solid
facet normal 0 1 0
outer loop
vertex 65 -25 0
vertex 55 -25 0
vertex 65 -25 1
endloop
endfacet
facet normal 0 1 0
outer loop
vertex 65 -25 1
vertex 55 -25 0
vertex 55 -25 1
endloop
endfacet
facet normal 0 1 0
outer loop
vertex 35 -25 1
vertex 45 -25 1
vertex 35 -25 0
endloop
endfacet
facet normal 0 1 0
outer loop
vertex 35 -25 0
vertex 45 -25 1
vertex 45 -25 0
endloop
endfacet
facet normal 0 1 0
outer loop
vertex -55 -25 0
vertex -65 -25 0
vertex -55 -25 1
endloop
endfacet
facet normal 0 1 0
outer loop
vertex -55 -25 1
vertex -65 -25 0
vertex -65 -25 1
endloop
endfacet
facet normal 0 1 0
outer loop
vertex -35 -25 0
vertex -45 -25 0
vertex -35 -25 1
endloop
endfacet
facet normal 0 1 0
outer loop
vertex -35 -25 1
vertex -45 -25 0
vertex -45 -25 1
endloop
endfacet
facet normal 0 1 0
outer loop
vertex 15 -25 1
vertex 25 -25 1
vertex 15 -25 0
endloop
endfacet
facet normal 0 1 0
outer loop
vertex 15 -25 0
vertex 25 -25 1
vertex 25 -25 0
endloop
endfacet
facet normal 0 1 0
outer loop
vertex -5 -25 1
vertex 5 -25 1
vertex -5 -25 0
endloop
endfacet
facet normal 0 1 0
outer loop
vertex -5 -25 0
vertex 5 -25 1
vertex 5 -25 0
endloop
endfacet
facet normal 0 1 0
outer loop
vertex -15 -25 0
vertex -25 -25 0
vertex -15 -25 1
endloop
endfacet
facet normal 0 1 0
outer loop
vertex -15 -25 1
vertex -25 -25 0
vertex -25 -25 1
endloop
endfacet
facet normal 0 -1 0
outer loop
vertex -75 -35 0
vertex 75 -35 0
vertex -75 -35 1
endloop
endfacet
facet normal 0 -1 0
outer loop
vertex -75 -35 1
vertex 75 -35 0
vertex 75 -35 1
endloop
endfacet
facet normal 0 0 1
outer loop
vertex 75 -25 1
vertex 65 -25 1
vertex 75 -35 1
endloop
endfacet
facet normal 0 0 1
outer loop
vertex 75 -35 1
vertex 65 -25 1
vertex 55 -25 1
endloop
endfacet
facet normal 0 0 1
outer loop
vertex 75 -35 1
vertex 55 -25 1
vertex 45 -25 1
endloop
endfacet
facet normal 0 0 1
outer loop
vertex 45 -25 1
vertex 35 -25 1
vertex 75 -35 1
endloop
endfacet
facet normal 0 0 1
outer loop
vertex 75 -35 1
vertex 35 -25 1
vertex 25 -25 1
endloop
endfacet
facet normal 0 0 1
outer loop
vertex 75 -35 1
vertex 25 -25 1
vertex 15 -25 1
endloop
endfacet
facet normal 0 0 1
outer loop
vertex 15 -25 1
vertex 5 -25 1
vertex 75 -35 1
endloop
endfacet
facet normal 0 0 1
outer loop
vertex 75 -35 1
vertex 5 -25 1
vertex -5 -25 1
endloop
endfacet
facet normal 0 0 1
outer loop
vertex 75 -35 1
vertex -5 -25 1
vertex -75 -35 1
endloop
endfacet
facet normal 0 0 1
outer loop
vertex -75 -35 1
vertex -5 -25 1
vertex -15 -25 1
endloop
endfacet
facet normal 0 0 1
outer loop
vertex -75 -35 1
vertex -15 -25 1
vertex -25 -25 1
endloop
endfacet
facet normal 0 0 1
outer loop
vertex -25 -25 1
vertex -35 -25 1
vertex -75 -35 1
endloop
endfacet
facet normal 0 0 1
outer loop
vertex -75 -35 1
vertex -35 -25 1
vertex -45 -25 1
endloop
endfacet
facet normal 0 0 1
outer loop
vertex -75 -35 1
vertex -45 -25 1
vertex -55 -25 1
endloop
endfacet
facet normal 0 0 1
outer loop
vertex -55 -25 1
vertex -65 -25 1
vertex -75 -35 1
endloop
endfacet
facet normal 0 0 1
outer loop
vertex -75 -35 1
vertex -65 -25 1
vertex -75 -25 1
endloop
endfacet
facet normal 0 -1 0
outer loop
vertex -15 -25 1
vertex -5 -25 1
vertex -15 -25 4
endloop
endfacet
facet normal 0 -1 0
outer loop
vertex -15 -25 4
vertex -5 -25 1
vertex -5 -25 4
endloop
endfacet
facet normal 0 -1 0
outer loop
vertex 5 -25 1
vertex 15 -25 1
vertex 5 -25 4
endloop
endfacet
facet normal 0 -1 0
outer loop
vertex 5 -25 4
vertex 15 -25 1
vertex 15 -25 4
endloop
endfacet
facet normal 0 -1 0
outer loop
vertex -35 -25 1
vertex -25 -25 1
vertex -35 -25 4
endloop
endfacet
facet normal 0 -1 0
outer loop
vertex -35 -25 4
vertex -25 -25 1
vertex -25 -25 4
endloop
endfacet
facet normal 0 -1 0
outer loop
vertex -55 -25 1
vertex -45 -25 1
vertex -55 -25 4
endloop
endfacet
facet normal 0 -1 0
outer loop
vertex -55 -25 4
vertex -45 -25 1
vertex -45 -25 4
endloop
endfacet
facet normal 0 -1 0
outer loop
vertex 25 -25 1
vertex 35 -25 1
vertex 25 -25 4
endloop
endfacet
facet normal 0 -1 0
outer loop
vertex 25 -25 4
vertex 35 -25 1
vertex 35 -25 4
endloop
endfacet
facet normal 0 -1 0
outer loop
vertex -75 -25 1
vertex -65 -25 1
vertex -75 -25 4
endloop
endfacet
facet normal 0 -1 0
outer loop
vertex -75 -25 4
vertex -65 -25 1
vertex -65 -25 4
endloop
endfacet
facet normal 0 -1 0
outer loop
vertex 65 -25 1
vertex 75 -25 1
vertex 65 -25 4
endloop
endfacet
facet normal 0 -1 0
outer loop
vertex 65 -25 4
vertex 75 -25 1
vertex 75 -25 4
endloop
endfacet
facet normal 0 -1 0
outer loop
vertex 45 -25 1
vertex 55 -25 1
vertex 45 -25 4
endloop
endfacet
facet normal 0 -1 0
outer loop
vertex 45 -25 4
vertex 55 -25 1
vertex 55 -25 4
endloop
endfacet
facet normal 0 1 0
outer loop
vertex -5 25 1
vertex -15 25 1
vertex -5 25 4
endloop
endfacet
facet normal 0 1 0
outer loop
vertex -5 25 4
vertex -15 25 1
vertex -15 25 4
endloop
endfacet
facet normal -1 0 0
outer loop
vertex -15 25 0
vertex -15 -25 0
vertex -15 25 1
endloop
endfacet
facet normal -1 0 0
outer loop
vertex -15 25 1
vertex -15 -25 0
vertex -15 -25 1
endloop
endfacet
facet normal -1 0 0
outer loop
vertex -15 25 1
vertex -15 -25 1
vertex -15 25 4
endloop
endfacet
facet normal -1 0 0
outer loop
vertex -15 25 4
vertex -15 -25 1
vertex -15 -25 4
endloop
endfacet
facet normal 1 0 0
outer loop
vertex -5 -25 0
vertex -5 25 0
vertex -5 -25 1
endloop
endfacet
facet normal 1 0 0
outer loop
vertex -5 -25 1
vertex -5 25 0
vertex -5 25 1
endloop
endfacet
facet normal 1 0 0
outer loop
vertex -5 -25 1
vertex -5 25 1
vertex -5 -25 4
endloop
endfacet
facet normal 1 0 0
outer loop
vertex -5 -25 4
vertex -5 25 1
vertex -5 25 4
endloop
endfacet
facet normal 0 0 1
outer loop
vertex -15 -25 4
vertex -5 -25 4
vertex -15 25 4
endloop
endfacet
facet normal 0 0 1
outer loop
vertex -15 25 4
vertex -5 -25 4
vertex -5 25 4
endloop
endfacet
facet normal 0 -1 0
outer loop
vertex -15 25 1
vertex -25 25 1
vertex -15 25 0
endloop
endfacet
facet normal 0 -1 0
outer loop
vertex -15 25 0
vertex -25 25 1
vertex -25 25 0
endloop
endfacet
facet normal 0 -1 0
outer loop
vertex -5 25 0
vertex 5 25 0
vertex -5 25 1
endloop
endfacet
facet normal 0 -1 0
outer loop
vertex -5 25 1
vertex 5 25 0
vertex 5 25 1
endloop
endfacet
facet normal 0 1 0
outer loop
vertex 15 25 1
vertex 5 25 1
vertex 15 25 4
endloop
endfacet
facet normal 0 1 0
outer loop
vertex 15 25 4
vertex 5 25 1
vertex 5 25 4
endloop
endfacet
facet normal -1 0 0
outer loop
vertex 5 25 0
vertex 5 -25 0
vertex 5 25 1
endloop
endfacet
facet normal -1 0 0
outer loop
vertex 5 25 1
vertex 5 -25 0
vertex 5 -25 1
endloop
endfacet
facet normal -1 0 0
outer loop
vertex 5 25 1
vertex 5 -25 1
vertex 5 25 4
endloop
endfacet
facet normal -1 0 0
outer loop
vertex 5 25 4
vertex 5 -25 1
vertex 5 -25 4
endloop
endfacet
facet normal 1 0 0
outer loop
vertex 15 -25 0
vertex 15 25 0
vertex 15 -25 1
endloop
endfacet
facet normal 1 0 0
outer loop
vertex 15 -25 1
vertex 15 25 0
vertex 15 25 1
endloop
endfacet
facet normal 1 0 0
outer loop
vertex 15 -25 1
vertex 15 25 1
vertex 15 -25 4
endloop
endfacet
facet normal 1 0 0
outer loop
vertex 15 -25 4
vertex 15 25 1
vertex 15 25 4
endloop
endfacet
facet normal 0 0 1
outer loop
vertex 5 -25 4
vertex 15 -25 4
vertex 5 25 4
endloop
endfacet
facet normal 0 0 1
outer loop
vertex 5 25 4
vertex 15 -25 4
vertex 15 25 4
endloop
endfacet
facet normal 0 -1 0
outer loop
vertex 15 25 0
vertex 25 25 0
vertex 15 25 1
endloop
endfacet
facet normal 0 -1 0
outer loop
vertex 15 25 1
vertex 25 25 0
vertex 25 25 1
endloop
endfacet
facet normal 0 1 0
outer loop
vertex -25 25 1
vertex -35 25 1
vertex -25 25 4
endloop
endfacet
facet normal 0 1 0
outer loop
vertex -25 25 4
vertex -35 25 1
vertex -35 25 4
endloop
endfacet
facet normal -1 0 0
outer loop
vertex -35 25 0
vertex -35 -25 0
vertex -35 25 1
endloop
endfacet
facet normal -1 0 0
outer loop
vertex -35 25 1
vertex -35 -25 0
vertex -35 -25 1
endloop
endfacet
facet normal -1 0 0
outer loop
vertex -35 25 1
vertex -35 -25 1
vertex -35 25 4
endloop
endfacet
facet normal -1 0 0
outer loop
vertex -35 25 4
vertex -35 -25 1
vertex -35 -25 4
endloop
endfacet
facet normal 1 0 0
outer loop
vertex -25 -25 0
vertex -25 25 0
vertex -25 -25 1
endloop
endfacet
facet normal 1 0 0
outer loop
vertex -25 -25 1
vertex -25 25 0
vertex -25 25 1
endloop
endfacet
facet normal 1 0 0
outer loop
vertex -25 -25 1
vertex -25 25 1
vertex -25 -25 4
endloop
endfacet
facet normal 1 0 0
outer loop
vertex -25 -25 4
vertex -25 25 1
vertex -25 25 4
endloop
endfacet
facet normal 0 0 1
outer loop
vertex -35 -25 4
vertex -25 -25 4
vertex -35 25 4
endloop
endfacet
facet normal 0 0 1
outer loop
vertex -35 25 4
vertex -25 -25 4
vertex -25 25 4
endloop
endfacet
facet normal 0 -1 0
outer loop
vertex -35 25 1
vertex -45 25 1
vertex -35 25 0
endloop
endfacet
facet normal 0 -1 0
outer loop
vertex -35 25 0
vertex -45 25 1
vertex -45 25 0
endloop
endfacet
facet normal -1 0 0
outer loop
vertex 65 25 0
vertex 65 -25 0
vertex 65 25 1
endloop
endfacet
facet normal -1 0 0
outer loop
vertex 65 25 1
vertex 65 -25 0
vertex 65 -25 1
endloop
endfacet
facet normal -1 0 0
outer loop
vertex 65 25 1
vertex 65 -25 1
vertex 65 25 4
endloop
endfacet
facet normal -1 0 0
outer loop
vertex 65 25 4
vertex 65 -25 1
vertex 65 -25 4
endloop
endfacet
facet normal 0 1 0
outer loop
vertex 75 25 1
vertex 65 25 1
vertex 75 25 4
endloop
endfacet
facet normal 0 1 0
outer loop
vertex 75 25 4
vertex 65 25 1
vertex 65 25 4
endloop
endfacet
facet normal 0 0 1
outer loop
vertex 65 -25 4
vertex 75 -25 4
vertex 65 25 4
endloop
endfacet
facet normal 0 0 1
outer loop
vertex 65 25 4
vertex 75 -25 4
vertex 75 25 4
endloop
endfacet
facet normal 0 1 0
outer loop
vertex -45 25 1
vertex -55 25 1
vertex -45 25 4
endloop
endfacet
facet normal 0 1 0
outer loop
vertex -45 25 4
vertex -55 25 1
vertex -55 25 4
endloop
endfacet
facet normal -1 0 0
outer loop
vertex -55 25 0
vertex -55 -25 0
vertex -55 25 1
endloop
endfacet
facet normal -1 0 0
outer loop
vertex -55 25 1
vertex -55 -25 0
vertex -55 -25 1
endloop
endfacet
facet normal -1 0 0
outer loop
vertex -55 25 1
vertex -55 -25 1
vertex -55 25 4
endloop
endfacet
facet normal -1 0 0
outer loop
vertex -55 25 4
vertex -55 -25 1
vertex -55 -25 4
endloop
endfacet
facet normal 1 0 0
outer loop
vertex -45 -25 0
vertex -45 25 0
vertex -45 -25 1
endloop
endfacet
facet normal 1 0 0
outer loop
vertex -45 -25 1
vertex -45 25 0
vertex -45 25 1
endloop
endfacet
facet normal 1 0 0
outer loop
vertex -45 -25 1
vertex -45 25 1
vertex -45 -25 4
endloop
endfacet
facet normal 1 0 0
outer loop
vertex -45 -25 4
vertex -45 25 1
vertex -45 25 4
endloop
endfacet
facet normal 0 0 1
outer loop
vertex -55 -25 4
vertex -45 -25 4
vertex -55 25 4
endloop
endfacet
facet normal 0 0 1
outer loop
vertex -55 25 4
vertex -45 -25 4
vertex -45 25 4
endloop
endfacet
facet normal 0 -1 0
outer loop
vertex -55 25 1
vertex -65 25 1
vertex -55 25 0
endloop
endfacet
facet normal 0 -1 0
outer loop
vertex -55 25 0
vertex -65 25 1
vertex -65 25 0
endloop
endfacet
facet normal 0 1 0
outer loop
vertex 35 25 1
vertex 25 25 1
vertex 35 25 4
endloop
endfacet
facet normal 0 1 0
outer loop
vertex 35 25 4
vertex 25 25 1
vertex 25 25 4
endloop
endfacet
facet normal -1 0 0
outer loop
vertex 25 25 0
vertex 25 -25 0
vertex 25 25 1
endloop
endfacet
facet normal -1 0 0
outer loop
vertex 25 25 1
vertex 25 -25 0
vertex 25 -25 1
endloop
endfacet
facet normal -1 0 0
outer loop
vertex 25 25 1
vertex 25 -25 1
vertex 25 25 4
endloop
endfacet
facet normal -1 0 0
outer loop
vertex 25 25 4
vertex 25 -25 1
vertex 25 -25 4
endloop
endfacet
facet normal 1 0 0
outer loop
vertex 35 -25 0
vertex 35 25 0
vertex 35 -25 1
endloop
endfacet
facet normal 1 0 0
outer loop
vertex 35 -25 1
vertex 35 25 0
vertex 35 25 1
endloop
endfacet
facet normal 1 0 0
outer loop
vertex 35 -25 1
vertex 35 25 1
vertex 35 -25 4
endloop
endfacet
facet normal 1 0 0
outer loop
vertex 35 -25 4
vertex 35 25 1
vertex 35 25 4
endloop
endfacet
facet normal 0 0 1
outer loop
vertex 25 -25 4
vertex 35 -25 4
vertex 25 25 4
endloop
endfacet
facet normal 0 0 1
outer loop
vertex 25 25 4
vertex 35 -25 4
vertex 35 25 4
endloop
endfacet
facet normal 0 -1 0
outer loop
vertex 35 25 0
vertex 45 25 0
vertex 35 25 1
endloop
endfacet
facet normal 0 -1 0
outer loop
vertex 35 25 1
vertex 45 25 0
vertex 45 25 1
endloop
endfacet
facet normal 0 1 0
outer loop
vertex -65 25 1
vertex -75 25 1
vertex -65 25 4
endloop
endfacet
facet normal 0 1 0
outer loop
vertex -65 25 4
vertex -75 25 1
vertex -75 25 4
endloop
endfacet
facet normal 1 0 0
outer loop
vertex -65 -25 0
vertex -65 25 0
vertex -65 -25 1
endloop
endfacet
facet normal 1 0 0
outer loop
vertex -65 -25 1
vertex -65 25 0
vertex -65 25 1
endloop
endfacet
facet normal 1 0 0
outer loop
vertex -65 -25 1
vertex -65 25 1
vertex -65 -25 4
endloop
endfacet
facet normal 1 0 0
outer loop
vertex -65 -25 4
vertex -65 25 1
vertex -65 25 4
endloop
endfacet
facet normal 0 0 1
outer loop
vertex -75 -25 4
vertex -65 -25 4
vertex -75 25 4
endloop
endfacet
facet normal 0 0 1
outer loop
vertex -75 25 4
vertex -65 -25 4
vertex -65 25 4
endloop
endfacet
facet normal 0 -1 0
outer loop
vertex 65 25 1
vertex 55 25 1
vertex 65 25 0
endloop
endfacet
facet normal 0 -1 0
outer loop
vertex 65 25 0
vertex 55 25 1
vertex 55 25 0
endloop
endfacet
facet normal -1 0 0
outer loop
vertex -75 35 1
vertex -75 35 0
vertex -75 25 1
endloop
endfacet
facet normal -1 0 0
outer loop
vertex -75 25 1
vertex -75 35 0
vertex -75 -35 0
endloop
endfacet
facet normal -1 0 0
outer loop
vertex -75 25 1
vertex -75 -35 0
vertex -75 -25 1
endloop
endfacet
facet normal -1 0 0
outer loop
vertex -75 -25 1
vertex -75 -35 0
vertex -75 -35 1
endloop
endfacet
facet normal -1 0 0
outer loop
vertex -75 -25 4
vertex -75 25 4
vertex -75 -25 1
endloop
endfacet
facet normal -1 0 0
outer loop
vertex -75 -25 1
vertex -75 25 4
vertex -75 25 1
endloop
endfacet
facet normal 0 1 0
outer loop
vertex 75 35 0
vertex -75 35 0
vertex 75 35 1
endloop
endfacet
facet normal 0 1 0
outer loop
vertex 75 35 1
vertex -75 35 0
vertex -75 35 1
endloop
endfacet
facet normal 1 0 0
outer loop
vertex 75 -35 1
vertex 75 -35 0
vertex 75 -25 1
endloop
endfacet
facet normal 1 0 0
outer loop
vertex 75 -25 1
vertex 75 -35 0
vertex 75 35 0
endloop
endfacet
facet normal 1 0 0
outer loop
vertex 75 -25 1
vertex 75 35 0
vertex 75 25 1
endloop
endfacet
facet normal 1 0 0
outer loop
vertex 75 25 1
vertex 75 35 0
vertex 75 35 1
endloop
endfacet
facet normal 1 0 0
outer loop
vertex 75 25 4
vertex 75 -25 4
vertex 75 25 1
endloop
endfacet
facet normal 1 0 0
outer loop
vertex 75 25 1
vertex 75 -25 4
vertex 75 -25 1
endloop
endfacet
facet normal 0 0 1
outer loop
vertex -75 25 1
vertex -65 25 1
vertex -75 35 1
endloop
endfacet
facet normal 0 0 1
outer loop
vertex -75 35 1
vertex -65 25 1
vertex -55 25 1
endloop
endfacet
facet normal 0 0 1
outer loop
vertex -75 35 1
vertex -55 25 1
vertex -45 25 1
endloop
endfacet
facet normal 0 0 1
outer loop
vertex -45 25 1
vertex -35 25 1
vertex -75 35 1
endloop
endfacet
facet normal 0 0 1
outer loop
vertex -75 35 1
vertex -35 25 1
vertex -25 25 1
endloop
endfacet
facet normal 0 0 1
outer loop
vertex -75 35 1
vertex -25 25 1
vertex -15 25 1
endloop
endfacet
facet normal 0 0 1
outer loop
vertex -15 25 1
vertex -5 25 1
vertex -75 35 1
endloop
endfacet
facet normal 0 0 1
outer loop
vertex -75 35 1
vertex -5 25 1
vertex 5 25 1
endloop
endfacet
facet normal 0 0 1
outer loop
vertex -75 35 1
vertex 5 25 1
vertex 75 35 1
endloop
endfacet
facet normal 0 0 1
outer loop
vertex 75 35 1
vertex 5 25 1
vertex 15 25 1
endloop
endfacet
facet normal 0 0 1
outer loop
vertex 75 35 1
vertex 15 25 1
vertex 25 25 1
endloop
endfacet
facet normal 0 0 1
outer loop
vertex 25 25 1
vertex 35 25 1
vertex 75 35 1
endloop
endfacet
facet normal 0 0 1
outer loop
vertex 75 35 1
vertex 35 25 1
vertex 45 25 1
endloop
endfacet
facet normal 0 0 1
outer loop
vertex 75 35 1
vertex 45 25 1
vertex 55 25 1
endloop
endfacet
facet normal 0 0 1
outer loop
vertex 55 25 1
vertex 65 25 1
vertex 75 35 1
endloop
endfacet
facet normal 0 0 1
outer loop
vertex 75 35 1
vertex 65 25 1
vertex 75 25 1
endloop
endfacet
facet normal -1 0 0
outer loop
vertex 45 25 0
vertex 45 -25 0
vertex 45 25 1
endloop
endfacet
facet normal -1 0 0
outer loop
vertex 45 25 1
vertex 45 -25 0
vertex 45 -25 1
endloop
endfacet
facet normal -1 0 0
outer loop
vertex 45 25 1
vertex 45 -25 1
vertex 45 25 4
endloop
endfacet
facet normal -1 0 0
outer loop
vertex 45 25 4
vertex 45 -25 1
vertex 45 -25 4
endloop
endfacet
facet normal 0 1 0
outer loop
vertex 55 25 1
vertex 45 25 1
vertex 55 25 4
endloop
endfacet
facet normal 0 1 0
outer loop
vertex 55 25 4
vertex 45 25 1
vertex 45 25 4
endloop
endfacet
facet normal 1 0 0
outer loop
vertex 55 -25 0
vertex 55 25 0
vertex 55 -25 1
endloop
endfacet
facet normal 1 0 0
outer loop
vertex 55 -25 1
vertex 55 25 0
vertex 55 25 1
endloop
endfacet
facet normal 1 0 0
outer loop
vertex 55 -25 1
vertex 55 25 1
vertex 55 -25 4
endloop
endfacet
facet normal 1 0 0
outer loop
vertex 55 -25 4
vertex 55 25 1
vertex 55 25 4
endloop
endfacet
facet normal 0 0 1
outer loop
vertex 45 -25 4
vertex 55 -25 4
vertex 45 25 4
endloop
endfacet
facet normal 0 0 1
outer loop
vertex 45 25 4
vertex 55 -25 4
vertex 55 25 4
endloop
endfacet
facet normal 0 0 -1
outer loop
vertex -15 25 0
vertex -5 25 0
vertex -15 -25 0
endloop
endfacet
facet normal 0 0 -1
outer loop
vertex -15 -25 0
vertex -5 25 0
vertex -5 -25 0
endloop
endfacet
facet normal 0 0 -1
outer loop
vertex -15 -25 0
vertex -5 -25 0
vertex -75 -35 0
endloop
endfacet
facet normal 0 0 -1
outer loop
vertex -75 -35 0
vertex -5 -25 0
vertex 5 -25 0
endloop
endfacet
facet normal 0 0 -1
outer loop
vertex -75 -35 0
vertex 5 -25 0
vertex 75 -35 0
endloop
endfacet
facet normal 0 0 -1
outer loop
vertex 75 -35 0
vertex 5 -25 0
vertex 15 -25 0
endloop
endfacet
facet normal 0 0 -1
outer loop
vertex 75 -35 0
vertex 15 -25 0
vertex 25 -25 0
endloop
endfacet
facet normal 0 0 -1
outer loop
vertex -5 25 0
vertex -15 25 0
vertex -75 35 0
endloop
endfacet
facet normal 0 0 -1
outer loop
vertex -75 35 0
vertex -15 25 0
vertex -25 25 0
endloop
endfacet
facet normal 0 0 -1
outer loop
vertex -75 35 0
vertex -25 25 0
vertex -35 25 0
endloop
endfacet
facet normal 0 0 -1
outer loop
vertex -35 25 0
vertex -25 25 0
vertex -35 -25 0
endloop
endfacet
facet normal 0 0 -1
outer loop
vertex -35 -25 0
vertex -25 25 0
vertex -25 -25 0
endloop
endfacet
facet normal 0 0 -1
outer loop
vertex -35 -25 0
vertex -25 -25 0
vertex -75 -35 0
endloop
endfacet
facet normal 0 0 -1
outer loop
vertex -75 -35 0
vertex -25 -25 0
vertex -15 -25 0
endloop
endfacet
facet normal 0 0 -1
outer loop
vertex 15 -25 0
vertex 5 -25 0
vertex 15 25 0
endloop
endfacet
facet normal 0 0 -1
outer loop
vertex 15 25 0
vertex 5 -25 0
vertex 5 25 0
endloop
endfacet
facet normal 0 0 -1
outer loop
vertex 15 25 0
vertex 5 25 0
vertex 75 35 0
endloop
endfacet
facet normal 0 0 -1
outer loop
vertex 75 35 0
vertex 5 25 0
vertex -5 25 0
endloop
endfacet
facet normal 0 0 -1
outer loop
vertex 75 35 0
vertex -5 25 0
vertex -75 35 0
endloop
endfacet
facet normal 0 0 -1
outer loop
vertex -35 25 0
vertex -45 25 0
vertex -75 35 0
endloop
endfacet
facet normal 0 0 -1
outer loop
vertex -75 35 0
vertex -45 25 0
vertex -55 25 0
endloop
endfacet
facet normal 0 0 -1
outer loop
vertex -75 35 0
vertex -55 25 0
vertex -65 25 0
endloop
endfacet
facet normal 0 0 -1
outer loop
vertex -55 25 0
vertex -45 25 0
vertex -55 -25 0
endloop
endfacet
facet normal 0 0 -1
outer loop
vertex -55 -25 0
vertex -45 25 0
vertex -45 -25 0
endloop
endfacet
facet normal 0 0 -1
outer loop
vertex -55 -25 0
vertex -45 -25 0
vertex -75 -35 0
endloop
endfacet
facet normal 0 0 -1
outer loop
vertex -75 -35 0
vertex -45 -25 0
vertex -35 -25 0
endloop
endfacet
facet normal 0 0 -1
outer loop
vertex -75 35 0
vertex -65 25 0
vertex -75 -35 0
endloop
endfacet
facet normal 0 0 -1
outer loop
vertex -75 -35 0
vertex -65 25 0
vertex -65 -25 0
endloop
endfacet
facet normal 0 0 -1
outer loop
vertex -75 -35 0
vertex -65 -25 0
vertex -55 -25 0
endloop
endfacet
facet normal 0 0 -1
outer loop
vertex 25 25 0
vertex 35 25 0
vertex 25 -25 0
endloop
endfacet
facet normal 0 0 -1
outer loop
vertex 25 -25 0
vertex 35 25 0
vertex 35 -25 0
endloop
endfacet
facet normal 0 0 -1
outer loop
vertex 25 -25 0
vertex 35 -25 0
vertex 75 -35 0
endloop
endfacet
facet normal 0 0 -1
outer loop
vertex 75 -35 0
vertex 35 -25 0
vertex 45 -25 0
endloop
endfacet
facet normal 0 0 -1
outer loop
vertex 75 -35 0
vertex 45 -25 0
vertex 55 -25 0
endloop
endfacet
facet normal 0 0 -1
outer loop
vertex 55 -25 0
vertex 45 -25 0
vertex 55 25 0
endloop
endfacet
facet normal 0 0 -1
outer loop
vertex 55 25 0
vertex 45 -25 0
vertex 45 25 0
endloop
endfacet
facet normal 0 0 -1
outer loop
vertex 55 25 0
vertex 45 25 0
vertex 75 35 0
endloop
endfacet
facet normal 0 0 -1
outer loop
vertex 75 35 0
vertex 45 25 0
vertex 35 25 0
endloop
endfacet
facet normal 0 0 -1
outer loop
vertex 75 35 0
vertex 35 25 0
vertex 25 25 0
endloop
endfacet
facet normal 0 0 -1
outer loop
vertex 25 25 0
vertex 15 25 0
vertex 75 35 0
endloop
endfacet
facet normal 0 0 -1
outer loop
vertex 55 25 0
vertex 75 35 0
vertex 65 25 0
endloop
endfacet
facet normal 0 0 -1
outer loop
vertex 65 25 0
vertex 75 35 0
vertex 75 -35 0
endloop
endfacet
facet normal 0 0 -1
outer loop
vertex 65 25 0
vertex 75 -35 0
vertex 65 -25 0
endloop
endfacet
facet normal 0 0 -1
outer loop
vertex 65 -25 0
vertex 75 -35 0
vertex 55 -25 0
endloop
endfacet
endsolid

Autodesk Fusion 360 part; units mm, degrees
sketch "Sketch1" plane through (0, 0, 0) normal (0, 0, 1) x (1, 0, 0)
  line L0 (75, -35) -> (-75, -35)
  line L1 (-75, -35) -> (-75, 35)
  line L2 (-75, 35) -> (75, 35)
  line L3 (75, 35) -> (75, -35)
  line L4 (75, -35) -> (-75, 35) construction
  line L5 (-75, -35) -> (75, 35) construction
  line L6 (75, -25) -> (-75, -25)
  line L7 (-75, -25) -> (-75, 25)
  line L8 (-75, 25) -> (75, 25)
  line L9 (75, 25) -> (75, -25)
  line L10 (75, -25) -> (-75, 25) construction
  line L11 (-75, -25) -> (75, 25) construction
  line L12 (-75, 25) -> (-65, 25)
  line L13 (-65, 25) -> (-65, -25)
  line L14 (-65, -25) -> (-75, -25)
  line L15 (-75, -25) -> (-75, 25)
  line L16 (-55, 25) -> (-45, 25)
  line L17 (-45, 25) -> (-45, -25)
  line L18 (-45, -25) -> (-55, -25)
  line L19 (-55, -25) -> (-55, 25)
  line L20 (-35, 25) -> (-25, 25)
  line L21 (-25, 25) -> (-25, -25)
  line L22 (-25, -25) -> (-35, -25)
  line L23 (-35, -25) -> (-35, 25)
  line L24 (-15, 25) -> (-5, 25)
  line L25 (-5, 25) -> (-5, -25)
  line L26 (-5, -25) -> (-15, -25)
  line L27 (-15, -25) -> (-15, 25)
  line L28 (5, 25) -> (15, 25)
  line L29 (15, 25) -> (15, -25)
  line L30 (15, -25) -> (5, -25)
  line L31 (5, -25) -> (5, 25)
  line L32 (25, 25) -> (35, 25)
  line L33 (35, 25) -> (35, -25)
  line L34 (35, -25) -> (25, -25)
  line L35 (25, -25) -> (25, 25)
  line L36 (45, 25) -> (55, 25)
  line L37 (55, 25) -> (55, -25)
  line L38 (55, -25) -> (45, -25)
  line L39 (45, -25) -> (45, 25)
  line L40 (65, 25) -> (75, 25)
  line L41 (75, 25) -> (75, -25)
  line L42 (75, -25) -> (65, -25)
  line L43 (65, -25) -> (65, 25)
  dimension "d1" = 150
  dimension "d2" = 70
  dimension "d3" = 150
  dimension "d4" = 50
  dimension "d5" = 10
  dimension "d8" = 140
  dimension "d9" = 0
extrude "Extrude1" add sketch "Sketch1" along normal blind 4 contours L3 L6 L8 L9 L40 L41 L42 L43 | L1 L6 L7 L8 L12 L13 L14 L15 | L6 L8 L36 L37 L38 L39 | L6 L8 L16 L17 L18 L19 | L6 L8 L32 L33 L34 L35 | L6 L8 L20 L21 L22 L23 | L6 L8 L28 L29 L30 L31 | L6 L8 L24 L25 L26 L27 makes body 1 at (-31.6667, 8.3333, 0) makes body 2 at (-71.6667, 8.3333, 0) makes body 3 at (31.6667, -8.3333, 0) makes body 4 at (-51.6667, 8.3333, 0) makes body 5 at (68.3333, -8.3333, 0) makes body 6 at (11.6667, -8.3333, 0) makes body 7 at (51.6667, -8.3333, 0) makes body 8 at (-11.6667, 8.3333, 0)
extrude "Extrude2" add sketch "Sketch1" along normal blind 1 contours L0 L1 L3 L6 L14 L18 L22 L26 L30 L34 L38 L42 | L1 L2 L3 L8 L12 L16 L20 L24 L28 L32 L36 L40 bodies 1 2 3 4 5 6 7 8
